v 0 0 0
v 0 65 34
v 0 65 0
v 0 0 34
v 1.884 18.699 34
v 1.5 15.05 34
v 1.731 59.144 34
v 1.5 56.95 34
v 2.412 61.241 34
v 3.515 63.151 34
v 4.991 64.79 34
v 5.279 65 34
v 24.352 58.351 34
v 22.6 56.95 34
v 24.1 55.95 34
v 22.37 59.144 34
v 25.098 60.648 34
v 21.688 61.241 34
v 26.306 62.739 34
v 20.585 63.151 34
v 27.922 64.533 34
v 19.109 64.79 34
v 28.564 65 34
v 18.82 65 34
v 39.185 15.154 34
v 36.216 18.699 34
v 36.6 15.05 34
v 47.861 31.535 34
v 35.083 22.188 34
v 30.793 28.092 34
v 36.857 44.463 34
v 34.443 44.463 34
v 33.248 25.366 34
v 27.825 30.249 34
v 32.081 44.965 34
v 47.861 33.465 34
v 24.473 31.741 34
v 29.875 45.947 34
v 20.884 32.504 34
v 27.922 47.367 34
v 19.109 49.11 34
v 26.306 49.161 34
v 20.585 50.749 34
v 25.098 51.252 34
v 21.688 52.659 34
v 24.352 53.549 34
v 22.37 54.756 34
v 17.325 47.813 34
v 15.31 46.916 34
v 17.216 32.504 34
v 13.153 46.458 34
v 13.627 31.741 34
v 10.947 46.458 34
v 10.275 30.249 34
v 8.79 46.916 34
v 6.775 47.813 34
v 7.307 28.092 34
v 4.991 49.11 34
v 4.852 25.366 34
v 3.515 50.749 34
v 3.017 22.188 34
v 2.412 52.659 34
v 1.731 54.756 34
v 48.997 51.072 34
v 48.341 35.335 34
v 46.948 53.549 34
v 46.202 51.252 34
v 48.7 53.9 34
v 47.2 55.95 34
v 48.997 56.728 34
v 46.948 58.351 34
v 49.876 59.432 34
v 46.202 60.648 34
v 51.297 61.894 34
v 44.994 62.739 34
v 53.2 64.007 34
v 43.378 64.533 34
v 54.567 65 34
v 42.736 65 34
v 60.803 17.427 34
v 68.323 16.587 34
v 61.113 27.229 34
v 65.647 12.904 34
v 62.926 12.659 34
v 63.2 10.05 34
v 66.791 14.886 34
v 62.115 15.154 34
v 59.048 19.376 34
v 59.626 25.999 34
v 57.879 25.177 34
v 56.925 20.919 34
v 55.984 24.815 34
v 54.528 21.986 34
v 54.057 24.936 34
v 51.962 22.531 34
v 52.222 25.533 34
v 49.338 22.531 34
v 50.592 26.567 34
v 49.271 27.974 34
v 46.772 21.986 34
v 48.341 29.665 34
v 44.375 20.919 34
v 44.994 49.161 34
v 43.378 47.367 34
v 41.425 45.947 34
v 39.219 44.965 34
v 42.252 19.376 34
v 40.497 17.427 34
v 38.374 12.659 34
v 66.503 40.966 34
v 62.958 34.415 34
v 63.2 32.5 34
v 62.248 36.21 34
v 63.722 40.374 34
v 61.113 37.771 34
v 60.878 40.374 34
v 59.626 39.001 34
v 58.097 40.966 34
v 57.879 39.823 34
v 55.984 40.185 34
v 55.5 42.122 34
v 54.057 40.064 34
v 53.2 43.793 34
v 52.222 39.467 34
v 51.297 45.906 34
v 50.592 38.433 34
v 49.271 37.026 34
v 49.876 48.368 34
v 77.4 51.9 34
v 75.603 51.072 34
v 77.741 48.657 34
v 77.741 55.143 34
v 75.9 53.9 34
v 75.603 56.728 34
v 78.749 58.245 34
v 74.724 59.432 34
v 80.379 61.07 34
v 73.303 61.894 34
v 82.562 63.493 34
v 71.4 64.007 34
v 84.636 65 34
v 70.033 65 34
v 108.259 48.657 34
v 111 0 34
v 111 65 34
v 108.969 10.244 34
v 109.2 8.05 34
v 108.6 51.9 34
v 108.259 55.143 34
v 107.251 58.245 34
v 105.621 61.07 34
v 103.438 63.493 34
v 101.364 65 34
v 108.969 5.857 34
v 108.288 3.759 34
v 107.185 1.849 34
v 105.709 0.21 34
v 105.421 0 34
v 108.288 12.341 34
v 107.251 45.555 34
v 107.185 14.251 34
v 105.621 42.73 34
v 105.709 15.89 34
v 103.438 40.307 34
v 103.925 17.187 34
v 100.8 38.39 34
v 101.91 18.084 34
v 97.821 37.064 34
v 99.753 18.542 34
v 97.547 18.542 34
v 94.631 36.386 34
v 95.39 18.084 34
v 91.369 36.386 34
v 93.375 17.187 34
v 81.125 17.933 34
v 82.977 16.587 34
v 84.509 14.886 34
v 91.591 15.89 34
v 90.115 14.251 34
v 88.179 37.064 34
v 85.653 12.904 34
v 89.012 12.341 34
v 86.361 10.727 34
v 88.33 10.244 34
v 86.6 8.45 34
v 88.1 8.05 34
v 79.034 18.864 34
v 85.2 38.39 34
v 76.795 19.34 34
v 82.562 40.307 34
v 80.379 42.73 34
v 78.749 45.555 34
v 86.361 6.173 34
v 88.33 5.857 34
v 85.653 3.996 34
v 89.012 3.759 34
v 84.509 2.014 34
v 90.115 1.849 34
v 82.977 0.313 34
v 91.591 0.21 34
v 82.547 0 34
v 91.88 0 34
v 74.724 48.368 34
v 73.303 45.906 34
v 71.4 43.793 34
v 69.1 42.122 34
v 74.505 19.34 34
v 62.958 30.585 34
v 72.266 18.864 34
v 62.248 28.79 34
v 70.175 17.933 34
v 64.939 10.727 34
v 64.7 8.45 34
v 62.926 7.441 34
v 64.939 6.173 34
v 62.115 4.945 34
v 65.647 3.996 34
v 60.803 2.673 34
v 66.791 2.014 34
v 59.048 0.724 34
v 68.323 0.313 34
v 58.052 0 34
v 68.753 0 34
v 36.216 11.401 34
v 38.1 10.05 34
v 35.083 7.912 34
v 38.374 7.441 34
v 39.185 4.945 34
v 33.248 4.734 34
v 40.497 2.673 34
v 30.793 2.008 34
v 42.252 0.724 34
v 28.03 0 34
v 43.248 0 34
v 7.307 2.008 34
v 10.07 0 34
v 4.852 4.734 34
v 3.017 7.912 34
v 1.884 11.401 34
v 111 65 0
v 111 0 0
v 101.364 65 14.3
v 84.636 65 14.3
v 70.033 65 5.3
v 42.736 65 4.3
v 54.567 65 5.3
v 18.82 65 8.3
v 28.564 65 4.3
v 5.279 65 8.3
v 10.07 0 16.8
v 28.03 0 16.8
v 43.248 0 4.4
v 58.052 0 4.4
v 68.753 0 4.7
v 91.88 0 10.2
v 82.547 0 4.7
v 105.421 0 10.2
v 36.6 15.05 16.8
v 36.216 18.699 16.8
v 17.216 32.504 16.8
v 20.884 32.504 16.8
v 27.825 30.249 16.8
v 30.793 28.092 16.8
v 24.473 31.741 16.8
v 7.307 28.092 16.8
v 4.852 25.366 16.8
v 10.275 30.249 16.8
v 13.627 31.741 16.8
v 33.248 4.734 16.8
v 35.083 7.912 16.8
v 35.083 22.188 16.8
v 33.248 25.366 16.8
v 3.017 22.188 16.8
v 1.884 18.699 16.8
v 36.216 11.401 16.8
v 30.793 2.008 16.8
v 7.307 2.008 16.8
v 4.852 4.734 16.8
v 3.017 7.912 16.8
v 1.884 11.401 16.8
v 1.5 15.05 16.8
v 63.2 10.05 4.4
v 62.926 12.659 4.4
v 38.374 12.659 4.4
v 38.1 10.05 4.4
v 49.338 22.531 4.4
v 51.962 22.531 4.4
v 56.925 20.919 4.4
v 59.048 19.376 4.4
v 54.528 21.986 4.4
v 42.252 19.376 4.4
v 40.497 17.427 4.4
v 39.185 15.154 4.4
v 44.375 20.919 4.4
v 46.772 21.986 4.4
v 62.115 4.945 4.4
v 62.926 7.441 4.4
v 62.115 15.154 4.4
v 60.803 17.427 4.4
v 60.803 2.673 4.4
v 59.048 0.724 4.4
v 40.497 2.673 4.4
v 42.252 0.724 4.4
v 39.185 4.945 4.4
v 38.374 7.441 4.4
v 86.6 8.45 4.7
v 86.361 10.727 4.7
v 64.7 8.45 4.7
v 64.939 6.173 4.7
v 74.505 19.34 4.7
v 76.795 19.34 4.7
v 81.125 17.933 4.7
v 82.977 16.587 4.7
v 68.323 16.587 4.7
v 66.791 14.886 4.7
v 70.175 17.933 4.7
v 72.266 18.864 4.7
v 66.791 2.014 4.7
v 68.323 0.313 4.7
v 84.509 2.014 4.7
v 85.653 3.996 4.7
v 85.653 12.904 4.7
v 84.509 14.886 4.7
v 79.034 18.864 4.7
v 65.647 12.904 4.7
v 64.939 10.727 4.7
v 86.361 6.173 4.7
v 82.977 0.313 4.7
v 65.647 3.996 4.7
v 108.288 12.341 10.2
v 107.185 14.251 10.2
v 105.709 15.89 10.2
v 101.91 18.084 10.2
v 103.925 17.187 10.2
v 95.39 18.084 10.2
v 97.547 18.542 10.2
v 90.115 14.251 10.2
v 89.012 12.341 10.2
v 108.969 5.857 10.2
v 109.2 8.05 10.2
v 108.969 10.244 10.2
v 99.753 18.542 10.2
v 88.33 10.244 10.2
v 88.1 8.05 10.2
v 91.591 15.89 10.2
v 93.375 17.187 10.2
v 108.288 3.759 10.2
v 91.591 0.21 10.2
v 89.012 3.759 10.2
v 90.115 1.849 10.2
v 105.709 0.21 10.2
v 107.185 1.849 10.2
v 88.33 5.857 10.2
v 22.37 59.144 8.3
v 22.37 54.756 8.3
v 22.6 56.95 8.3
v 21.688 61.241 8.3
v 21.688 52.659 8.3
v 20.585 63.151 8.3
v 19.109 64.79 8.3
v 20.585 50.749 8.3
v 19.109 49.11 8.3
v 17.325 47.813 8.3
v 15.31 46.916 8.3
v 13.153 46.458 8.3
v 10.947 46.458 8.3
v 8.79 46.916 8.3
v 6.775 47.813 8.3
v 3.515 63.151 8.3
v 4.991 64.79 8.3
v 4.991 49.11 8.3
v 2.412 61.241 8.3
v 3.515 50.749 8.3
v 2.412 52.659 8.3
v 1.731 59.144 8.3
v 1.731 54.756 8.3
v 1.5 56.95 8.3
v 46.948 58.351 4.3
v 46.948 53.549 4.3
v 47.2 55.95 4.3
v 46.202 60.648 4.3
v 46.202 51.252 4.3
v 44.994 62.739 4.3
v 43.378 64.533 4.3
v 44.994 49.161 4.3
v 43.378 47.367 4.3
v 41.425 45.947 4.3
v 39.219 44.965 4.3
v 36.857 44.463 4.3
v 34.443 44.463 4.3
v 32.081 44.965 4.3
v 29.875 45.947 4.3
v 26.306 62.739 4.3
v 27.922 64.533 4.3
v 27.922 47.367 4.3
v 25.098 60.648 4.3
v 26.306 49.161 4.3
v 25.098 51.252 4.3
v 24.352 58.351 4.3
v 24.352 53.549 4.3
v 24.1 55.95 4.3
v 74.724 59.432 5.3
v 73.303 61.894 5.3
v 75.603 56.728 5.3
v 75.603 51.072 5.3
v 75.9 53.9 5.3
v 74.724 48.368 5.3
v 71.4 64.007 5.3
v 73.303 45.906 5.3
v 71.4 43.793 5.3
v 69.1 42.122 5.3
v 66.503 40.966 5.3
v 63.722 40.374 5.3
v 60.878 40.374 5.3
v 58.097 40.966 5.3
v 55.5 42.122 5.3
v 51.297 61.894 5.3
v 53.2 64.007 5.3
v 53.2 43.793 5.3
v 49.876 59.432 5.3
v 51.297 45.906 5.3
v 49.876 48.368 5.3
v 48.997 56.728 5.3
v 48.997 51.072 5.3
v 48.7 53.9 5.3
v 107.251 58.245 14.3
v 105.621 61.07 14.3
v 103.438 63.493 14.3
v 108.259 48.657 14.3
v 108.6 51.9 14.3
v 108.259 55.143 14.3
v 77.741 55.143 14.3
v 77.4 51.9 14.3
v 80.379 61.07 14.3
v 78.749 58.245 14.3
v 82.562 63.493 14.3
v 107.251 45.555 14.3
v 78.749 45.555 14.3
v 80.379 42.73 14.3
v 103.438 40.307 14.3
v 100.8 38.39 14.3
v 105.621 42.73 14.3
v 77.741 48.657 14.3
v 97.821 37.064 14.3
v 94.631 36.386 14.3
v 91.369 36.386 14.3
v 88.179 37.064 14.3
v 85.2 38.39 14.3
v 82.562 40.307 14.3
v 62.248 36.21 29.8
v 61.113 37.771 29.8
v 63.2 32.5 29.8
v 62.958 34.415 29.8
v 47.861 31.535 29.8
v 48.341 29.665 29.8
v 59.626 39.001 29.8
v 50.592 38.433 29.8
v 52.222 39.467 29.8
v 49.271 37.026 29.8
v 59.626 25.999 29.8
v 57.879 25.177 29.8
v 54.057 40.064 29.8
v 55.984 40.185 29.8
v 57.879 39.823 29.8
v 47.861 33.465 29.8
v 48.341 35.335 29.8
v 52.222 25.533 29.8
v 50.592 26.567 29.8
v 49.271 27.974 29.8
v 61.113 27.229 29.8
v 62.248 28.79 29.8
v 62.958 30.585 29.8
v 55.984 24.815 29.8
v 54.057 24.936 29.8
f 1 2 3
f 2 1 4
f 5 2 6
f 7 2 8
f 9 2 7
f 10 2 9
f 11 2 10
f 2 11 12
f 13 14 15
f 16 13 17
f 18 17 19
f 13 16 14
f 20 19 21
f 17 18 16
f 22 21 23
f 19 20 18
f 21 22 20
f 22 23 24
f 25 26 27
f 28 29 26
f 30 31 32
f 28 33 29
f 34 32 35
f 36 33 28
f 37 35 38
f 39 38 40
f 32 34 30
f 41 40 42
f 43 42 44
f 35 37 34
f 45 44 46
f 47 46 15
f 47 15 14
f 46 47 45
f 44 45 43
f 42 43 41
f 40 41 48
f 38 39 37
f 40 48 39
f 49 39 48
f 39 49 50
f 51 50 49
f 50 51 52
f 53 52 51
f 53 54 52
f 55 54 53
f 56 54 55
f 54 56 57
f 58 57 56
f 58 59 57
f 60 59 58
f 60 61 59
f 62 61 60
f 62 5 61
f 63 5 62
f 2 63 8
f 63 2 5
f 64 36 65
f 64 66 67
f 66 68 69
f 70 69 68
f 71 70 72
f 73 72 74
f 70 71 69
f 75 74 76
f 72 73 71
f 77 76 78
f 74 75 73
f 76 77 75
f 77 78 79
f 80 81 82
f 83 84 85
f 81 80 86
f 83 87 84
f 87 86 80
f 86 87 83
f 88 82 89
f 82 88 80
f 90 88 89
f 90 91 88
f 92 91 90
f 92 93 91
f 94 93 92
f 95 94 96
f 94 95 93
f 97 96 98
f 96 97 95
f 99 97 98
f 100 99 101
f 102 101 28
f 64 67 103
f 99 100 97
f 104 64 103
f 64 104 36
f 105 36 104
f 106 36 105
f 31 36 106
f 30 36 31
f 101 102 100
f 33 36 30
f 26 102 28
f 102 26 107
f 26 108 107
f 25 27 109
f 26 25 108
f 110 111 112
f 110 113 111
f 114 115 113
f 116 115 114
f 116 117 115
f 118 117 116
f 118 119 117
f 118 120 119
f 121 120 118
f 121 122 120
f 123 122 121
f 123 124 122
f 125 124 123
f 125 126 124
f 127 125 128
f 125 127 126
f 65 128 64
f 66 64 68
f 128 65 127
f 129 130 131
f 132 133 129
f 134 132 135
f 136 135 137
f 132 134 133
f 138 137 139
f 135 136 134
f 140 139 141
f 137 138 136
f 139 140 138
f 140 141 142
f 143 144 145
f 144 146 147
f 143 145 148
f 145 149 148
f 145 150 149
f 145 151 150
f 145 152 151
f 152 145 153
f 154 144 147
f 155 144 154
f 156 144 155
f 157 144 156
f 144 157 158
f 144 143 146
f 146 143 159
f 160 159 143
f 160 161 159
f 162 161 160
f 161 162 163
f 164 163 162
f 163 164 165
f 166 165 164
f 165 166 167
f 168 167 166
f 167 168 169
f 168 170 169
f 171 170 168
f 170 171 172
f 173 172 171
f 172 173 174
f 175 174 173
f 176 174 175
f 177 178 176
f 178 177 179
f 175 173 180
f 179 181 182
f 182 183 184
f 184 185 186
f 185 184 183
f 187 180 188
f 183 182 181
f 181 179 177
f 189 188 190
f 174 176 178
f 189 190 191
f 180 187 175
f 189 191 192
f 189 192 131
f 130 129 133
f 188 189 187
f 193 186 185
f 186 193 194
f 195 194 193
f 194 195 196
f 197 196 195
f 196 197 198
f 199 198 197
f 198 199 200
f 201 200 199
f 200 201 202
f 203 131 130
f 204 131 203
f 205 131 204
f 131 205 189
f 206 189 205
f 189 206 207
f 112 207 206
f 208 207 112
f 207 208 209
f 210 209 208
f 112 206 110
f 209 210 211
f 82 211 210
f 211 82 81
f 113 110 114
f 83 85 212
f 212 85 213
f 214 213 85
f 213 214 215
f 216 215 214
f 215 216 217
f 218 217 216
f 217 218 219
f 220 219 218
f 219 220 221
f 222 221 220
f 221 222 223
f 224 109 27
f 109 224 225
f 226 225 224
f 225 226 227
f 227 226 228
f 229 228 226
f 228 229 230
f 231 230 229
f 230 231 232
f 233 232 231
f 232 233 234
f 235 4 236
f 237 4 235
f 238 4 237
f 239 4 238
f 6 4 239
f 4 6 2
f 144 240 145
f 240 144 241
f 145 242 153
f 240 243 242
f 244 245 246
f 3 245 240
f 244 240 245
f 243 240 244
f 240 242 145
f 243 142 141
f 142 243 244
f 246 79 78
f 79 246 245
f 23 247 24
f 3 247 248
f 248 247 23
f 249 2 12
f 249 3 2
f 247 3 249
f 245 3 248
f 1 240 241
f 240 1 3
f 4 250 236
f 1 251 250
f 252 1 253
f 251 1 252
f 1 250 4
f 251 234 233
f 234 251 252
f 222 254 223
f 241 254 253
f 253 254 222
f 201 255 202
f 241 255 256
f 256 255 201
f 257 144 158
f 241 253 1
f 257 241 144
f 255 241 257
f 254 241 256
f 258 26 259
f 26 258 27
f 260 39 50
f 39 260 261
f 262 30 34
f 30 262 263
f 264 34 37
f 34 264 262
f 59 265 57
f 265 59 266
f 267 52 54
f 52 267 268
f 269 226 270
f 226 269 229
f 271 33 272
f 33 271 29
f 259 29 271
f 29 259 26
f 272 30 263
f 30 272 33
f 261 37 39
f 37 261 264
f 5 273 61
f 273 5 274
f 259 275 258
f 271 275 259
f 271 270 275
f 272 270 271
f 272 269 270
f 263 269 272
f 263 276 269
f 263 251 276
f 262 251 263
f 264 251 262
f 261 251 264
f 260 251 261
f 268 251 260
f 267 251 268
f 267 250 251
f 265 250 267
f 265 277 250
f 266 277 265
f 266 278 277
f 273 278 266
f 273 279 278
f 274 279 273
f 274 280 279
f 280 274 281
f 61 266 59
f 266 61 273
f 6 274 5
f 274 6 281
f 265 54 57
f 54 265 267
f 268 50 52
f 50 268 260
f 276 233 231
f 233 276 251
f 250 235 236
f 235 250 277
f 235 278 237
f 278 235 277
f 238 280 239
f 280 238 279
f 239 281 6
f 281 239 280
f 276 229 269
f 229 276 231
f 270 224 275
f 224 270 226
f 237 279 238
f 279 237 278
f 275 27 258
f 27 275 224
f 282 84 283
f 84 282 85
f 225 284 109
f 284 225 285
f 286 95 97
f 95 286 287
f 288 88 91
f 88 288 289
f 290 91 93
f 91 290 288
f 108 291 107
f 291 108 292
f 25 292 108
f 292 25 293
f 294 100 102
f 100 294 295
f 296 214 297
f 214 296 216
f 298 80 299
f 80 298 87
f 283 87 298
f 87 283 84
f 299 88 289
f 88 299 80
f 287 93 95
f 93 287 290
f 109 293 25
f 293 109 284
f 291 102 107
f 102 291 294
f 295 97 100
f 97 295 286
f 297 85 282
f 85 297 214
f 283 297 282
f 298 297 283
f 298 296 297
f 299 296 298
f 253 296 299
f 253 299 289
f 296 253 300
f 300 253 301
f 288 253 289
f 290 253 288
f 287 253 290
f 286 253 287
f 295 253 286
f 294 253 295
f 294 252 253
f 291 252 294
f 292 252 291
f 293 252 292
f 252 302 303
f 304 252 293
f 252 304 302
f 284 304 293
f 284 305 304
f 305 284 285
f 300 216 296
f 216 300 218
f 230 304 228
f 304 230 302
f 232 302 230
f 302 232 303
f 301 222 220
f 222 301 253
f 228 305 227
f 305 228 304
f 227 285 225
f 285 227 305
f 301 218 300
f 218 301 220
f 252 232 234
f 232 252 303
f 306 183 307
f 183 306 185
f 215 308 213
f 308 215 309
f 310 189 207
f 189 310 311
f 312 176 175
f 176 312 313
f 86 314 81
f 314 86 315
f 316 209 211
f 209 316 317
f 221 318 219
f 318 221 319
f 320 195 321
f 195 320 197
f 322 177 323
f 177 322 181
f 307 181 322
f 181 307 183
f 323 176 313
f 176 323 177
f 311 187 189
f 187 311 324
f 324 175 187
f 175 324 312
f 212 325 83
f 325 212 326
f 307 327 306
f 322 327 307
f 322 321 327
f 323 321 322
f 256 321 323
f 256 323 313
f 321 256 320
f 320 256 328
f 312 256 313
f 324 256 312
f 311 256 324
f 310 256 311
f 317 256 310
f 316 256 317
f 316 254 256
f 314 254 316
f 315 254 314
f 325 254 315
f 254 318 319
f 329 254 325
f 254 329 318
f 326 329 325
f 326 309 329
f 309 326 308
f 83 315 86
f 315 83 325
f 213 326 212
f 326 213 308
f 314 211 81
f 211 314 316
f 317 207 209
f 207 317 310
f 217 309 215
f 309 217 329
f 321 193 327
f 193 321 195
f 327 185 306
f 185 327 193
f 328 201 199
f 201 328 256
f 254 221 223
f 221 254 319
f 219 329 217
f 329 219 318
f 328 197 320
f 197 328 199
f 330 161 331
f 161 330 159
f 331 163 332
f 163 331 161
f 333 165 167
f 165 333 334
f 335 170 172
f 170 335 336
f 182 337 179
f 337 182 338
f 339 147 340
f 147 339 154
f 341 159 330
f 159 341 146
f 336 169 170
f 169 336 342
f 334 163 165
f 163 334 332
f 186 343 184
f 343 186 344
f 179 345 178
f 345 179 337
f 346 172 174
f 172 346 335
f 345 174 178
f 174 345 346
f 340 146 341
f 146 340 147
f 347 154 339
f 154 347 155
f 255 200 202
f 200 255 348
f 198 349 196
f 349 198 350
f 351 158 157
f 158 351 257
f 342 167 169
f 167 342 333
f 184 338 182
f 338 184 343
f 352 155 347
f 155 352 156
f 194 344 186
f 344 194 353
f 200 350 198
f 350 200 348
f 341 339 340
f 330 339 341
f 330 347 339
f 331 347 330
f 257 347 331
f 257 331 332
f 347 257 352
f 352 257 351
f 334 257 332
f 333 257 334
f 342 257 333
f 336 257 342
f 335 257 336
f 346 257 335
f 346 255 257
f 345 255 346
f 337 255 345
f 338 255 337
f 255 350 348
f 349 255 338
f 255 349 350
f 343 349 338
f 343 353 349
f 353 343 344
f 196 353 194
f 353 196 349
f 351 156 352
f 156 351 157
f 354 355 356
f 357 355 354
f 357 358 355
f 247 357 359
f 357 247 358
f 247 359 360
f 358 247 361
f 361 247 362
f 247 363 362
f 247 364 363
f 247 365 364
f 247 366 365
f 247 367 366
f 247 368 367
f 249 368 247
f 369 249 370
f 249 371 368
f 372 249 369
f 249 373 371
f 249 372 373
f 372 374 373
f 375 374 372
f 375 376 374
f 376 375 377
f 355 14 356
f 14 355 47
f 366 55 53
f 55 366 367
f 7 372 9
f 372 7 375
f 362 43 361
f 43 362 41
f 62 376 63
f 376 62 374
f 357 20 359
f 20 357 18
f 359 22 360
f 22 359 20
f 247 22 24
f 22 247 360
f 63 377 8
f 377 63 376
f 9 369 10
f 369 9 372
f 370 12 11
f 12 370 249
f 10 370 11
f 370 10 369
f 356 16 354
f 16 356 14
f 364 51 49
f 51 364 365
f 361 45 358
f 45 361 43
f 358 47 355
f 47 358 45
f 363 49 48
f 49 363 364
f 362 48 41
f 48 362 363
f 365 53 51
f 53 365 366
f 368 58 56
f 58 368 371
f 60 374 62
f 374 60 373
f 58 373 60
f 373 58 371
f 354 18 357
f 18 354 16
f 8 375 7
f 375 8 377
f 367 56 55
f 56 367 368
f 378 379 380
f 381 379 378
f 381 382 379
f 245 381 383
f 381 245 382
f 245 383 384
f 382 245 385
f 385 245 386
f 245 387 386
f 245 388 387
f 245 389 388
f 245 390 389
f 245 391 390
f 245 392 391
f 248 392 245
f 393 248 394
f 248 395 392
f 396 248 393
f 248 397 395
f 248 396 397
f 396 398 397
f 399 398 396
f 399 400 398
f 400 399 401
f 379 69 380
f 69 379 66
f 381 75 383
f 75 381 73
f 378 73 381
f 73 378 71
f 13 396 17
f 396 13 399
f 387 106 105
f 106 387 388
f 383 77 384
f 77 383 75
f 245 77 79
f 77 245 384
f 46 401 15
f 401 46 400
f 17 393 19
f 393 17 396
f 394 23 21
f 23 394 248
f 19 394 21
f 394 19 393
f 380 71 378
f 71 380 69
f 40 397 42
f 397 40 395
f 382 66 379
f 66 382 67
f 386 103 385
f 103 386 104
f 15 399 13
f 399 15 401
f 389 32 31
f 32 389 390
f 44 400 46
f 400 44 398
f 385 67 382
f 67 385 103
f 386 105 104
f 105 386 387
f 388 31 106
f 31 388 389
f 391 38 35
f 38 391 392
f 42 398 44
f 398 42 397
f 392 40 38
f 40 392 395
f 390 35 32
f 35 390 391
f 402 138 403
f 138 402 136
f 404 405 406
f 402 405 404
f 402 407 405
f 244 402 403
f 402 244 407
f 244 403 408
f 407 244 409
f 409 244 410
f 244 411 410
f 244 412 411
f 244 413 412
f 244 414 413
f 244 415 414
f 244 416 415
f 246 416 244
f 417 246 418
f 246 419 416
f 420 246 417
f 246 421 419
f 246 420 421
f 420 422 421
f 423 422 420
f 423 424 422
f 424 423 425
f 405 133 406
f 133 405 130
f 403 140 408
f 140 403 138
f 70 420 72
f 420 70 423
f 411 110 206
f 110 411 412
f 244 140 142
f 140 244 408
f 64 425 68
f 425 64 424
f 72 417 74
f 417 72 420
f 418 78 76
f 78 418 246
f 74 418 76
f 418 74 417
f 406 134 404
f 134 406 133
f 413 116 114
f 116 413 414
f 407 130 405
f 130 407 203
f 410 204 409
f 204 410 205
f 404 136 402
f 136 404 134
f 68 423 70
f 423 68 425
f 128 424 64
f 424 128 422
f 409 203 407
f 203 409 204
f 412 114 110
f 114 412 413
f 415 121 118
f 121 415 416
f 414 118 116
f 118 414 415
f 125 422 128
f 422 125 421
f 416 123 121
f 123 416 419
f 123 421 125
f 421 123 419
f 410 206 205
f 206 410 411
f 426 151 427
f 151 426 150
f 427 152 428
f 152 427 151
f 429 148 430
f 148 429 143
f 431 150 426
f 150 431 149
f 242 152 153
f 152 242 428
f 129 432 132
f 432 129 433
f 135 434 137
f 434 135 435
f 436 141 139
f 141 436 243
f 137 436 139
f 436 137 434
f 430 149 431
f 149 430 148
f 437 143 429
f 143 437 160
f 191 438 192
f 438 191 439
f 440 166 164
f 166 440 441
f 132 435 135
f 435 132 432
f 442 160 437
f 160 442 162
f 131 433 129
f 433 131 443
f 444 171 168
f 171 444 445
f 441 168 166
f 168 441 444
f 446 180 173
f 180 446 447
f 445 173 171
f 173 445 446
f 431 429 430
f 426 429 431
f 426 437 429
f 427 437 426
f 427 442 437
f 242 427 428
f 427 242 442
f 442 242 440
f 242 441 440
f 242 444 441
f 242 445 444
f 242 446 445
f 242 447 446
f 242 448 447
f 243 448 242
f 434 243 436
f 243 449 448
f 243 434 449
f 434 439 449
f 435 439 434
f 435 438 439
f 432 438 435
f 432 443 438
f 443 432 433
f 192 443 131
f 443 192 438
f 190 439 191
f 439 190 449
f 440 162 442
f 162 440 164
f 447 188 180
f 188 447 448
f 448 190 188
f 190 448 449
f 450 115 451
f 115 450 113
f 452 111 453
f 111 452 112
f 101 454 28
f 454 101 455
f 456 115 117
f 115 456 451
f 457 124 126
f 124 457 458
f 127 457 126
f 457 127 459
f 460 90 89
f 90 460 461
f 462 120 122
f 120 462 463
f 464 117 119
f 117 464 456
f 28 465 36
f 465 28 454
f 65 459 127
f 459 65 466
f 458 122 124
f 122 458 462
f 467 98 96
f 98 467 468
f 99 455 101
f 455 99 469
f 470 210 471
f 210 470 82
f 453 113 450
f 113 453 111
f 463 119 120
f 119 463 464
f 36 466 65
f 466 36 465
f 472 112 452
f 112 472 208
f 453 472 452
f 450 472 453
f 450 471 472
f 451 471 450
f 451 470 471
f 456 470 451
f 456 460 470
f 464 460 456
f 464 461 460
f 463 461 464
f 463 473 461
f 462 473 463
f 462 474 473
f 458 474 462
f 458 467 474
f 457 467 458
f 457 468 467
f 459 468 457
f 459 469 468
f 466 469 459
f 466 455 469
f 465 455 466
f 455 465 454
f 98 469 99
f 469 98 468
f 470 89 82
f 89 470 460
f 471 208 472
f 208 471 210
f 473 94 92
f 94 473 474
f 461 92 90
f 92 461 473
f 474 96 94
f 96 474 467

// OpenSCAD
length = 111; 
width = 65;
height = 34;

floorThickness = 3;

//Based on magnet size:
magnetBaseOuterDiameter = 20;
magnetBaseInnerDiameter = 15.4;

magnetHeight = 4.2;

fiftyCoinHeight = 16.7 + .5;
twentyCoinHeight = 19.2 + .5;
tenCoinHeight = 28.2 + .5;
fiveCoinHeight = 29.1 + .5;
threeCoinHeight = 29.2 + .5;
twoCoinHeight = 28.8 + .5;
oneCoinFirstHeight = 23.3 + .5;
oneCoinSecondHeight = 25.2 + .5;


coinOffset = 2.5;
fiftyCoinDiameter = 34.1 + 1;
twentyCoinDiameter = 30.2 + 1;
tenCoinDiameter = 26.2 + 1;
fiveCoinDiameter = 24.1 + 1;
threeCoinDiameter = 22.1 + 1;
twoCoinDiameter = 20.9 + 1;
oneCoinDiameter = 20.1 + 1;

spaceBetweenCircles = 1.5;

difference(){
    cube([length, width, height]);

    translate([fiftyCoinDiameter/2 + spaceBetweenCircles, fiftyCoinDiameter/2 - coinOffset, height - fiftyCoinHeight])
        cylinder(fiftyCoinHeight, d=fiftyCoinDiameter);

    translate([fiftyCoinDiameter + fiveCoinDiameter/2 + spaceBetweenCircles * 2, fiveCoinDiameter/2 - coinOffset, height - fiveCoinHeight])
        cylinder(fiveCoinHeight, d=fiveCoinDiameter);
    
    translate([fiftyCoinDiameter + fiveCoinDiameter + twoCoinDiameter/2 + spaceBetweenCircles * 3, twoCoinDiameter/2 - coinOffset, height - twoCoinHeight])
        cylinder(twoCoinHeight, d=twoCoinDiameter);
    
    translate([fiftyCoinDiameter + fiveCoinDiameter + twoCoinDiameter + oneCoinDiameter/2 + spaceBetweenCircles * 4, oneCoinDiameter/2 - coinOffset, height - oneCoinFirstHeight])
        cylinder(oneCoinFirstHeight, d=oneCoinDiameter);
  
    
    translate([oneCoinDiameter/2 + spaceBetweenCircles, width - (oneCoinDiameter/2 - coinOffset), height - oneCoinSecondHeight])
        cylinder(oneCoinSecondHeight, d=oneCoinDiameter);
    
    translate([oneCoinDiameter + threeCoinDiameter/2 + spaceBetweenCircles * 2, width - (threeCoinDiameter/2 - coinOffset), height - threeCoinHeight])
        cylinder(threeCoinHeight, d=threeCoinDiameter);
    
    translate([oneCoinDiameter + threeCoinDiameter + tenCoinDiameter/2 + spaceBetweenCircles * 3, width - (tenCoinDiameter/2 - coinOffset), height - tenCoinHeight])
        cylinder(tenCoinHeight, d=tenCoinDiameter);
        
        translate([oneCoinDiameter + threeCoinDiameter + tenCoinDiameter + twentyCoinDiameter/2 + spaceBetweenCircles * 4, width - (twentyCoinDiameter/2 - coinOffset), height - twentyCoinHeight])
        cylinder(twentyCoinHeight, d=twentyCoinDiameter);

//    translate([length /2 - (smallCircleDiameter/2 + spaceBetweenCircles / 2), width - (smallCircleDiameter/2 - smallCircleOffset), floorThickness])
//        cylinder(height - floorThickness, d=smallCircleDiameter);
//    
//    translate([length /2 + (smallCircleDiameter/2 + spaceBetweenCircles / 2), width - (smallCircleDiameter/2 - smallCircleOffset), floorThickness])
//        cylinder(height - floorThickness, d=smallCircleDiameter);
//    
//    translate([length - (smallCircleDiameter/2 + spaceBetweenCircles), width - (smallCircleDiameter/2 - smallCircleOffset), floorThickness])
//        cylinder(height - floorThickness, d=smallCircleDiameter);
//    
    

//
//    translate([largeCircleDiameter/2 + spaceBetweenCircles - largeCircleOffset, width/2, floorThickness])
//        cylinder(height - floorThickness, d=largeCircleDiameter);
//
//    translate([length - (largeCircleDiameter/2 + spaceBetweenCircles - largeCircleOffset), width/2, floorThickness])
//        cylinder(height - floorThickness, d=largeCircleDiameter);
        
    translate([length/2, width/2, height - magnetHeight])
        cylinder(magnetHeight, d=magnetBaseInnerDiameter);
        

}
